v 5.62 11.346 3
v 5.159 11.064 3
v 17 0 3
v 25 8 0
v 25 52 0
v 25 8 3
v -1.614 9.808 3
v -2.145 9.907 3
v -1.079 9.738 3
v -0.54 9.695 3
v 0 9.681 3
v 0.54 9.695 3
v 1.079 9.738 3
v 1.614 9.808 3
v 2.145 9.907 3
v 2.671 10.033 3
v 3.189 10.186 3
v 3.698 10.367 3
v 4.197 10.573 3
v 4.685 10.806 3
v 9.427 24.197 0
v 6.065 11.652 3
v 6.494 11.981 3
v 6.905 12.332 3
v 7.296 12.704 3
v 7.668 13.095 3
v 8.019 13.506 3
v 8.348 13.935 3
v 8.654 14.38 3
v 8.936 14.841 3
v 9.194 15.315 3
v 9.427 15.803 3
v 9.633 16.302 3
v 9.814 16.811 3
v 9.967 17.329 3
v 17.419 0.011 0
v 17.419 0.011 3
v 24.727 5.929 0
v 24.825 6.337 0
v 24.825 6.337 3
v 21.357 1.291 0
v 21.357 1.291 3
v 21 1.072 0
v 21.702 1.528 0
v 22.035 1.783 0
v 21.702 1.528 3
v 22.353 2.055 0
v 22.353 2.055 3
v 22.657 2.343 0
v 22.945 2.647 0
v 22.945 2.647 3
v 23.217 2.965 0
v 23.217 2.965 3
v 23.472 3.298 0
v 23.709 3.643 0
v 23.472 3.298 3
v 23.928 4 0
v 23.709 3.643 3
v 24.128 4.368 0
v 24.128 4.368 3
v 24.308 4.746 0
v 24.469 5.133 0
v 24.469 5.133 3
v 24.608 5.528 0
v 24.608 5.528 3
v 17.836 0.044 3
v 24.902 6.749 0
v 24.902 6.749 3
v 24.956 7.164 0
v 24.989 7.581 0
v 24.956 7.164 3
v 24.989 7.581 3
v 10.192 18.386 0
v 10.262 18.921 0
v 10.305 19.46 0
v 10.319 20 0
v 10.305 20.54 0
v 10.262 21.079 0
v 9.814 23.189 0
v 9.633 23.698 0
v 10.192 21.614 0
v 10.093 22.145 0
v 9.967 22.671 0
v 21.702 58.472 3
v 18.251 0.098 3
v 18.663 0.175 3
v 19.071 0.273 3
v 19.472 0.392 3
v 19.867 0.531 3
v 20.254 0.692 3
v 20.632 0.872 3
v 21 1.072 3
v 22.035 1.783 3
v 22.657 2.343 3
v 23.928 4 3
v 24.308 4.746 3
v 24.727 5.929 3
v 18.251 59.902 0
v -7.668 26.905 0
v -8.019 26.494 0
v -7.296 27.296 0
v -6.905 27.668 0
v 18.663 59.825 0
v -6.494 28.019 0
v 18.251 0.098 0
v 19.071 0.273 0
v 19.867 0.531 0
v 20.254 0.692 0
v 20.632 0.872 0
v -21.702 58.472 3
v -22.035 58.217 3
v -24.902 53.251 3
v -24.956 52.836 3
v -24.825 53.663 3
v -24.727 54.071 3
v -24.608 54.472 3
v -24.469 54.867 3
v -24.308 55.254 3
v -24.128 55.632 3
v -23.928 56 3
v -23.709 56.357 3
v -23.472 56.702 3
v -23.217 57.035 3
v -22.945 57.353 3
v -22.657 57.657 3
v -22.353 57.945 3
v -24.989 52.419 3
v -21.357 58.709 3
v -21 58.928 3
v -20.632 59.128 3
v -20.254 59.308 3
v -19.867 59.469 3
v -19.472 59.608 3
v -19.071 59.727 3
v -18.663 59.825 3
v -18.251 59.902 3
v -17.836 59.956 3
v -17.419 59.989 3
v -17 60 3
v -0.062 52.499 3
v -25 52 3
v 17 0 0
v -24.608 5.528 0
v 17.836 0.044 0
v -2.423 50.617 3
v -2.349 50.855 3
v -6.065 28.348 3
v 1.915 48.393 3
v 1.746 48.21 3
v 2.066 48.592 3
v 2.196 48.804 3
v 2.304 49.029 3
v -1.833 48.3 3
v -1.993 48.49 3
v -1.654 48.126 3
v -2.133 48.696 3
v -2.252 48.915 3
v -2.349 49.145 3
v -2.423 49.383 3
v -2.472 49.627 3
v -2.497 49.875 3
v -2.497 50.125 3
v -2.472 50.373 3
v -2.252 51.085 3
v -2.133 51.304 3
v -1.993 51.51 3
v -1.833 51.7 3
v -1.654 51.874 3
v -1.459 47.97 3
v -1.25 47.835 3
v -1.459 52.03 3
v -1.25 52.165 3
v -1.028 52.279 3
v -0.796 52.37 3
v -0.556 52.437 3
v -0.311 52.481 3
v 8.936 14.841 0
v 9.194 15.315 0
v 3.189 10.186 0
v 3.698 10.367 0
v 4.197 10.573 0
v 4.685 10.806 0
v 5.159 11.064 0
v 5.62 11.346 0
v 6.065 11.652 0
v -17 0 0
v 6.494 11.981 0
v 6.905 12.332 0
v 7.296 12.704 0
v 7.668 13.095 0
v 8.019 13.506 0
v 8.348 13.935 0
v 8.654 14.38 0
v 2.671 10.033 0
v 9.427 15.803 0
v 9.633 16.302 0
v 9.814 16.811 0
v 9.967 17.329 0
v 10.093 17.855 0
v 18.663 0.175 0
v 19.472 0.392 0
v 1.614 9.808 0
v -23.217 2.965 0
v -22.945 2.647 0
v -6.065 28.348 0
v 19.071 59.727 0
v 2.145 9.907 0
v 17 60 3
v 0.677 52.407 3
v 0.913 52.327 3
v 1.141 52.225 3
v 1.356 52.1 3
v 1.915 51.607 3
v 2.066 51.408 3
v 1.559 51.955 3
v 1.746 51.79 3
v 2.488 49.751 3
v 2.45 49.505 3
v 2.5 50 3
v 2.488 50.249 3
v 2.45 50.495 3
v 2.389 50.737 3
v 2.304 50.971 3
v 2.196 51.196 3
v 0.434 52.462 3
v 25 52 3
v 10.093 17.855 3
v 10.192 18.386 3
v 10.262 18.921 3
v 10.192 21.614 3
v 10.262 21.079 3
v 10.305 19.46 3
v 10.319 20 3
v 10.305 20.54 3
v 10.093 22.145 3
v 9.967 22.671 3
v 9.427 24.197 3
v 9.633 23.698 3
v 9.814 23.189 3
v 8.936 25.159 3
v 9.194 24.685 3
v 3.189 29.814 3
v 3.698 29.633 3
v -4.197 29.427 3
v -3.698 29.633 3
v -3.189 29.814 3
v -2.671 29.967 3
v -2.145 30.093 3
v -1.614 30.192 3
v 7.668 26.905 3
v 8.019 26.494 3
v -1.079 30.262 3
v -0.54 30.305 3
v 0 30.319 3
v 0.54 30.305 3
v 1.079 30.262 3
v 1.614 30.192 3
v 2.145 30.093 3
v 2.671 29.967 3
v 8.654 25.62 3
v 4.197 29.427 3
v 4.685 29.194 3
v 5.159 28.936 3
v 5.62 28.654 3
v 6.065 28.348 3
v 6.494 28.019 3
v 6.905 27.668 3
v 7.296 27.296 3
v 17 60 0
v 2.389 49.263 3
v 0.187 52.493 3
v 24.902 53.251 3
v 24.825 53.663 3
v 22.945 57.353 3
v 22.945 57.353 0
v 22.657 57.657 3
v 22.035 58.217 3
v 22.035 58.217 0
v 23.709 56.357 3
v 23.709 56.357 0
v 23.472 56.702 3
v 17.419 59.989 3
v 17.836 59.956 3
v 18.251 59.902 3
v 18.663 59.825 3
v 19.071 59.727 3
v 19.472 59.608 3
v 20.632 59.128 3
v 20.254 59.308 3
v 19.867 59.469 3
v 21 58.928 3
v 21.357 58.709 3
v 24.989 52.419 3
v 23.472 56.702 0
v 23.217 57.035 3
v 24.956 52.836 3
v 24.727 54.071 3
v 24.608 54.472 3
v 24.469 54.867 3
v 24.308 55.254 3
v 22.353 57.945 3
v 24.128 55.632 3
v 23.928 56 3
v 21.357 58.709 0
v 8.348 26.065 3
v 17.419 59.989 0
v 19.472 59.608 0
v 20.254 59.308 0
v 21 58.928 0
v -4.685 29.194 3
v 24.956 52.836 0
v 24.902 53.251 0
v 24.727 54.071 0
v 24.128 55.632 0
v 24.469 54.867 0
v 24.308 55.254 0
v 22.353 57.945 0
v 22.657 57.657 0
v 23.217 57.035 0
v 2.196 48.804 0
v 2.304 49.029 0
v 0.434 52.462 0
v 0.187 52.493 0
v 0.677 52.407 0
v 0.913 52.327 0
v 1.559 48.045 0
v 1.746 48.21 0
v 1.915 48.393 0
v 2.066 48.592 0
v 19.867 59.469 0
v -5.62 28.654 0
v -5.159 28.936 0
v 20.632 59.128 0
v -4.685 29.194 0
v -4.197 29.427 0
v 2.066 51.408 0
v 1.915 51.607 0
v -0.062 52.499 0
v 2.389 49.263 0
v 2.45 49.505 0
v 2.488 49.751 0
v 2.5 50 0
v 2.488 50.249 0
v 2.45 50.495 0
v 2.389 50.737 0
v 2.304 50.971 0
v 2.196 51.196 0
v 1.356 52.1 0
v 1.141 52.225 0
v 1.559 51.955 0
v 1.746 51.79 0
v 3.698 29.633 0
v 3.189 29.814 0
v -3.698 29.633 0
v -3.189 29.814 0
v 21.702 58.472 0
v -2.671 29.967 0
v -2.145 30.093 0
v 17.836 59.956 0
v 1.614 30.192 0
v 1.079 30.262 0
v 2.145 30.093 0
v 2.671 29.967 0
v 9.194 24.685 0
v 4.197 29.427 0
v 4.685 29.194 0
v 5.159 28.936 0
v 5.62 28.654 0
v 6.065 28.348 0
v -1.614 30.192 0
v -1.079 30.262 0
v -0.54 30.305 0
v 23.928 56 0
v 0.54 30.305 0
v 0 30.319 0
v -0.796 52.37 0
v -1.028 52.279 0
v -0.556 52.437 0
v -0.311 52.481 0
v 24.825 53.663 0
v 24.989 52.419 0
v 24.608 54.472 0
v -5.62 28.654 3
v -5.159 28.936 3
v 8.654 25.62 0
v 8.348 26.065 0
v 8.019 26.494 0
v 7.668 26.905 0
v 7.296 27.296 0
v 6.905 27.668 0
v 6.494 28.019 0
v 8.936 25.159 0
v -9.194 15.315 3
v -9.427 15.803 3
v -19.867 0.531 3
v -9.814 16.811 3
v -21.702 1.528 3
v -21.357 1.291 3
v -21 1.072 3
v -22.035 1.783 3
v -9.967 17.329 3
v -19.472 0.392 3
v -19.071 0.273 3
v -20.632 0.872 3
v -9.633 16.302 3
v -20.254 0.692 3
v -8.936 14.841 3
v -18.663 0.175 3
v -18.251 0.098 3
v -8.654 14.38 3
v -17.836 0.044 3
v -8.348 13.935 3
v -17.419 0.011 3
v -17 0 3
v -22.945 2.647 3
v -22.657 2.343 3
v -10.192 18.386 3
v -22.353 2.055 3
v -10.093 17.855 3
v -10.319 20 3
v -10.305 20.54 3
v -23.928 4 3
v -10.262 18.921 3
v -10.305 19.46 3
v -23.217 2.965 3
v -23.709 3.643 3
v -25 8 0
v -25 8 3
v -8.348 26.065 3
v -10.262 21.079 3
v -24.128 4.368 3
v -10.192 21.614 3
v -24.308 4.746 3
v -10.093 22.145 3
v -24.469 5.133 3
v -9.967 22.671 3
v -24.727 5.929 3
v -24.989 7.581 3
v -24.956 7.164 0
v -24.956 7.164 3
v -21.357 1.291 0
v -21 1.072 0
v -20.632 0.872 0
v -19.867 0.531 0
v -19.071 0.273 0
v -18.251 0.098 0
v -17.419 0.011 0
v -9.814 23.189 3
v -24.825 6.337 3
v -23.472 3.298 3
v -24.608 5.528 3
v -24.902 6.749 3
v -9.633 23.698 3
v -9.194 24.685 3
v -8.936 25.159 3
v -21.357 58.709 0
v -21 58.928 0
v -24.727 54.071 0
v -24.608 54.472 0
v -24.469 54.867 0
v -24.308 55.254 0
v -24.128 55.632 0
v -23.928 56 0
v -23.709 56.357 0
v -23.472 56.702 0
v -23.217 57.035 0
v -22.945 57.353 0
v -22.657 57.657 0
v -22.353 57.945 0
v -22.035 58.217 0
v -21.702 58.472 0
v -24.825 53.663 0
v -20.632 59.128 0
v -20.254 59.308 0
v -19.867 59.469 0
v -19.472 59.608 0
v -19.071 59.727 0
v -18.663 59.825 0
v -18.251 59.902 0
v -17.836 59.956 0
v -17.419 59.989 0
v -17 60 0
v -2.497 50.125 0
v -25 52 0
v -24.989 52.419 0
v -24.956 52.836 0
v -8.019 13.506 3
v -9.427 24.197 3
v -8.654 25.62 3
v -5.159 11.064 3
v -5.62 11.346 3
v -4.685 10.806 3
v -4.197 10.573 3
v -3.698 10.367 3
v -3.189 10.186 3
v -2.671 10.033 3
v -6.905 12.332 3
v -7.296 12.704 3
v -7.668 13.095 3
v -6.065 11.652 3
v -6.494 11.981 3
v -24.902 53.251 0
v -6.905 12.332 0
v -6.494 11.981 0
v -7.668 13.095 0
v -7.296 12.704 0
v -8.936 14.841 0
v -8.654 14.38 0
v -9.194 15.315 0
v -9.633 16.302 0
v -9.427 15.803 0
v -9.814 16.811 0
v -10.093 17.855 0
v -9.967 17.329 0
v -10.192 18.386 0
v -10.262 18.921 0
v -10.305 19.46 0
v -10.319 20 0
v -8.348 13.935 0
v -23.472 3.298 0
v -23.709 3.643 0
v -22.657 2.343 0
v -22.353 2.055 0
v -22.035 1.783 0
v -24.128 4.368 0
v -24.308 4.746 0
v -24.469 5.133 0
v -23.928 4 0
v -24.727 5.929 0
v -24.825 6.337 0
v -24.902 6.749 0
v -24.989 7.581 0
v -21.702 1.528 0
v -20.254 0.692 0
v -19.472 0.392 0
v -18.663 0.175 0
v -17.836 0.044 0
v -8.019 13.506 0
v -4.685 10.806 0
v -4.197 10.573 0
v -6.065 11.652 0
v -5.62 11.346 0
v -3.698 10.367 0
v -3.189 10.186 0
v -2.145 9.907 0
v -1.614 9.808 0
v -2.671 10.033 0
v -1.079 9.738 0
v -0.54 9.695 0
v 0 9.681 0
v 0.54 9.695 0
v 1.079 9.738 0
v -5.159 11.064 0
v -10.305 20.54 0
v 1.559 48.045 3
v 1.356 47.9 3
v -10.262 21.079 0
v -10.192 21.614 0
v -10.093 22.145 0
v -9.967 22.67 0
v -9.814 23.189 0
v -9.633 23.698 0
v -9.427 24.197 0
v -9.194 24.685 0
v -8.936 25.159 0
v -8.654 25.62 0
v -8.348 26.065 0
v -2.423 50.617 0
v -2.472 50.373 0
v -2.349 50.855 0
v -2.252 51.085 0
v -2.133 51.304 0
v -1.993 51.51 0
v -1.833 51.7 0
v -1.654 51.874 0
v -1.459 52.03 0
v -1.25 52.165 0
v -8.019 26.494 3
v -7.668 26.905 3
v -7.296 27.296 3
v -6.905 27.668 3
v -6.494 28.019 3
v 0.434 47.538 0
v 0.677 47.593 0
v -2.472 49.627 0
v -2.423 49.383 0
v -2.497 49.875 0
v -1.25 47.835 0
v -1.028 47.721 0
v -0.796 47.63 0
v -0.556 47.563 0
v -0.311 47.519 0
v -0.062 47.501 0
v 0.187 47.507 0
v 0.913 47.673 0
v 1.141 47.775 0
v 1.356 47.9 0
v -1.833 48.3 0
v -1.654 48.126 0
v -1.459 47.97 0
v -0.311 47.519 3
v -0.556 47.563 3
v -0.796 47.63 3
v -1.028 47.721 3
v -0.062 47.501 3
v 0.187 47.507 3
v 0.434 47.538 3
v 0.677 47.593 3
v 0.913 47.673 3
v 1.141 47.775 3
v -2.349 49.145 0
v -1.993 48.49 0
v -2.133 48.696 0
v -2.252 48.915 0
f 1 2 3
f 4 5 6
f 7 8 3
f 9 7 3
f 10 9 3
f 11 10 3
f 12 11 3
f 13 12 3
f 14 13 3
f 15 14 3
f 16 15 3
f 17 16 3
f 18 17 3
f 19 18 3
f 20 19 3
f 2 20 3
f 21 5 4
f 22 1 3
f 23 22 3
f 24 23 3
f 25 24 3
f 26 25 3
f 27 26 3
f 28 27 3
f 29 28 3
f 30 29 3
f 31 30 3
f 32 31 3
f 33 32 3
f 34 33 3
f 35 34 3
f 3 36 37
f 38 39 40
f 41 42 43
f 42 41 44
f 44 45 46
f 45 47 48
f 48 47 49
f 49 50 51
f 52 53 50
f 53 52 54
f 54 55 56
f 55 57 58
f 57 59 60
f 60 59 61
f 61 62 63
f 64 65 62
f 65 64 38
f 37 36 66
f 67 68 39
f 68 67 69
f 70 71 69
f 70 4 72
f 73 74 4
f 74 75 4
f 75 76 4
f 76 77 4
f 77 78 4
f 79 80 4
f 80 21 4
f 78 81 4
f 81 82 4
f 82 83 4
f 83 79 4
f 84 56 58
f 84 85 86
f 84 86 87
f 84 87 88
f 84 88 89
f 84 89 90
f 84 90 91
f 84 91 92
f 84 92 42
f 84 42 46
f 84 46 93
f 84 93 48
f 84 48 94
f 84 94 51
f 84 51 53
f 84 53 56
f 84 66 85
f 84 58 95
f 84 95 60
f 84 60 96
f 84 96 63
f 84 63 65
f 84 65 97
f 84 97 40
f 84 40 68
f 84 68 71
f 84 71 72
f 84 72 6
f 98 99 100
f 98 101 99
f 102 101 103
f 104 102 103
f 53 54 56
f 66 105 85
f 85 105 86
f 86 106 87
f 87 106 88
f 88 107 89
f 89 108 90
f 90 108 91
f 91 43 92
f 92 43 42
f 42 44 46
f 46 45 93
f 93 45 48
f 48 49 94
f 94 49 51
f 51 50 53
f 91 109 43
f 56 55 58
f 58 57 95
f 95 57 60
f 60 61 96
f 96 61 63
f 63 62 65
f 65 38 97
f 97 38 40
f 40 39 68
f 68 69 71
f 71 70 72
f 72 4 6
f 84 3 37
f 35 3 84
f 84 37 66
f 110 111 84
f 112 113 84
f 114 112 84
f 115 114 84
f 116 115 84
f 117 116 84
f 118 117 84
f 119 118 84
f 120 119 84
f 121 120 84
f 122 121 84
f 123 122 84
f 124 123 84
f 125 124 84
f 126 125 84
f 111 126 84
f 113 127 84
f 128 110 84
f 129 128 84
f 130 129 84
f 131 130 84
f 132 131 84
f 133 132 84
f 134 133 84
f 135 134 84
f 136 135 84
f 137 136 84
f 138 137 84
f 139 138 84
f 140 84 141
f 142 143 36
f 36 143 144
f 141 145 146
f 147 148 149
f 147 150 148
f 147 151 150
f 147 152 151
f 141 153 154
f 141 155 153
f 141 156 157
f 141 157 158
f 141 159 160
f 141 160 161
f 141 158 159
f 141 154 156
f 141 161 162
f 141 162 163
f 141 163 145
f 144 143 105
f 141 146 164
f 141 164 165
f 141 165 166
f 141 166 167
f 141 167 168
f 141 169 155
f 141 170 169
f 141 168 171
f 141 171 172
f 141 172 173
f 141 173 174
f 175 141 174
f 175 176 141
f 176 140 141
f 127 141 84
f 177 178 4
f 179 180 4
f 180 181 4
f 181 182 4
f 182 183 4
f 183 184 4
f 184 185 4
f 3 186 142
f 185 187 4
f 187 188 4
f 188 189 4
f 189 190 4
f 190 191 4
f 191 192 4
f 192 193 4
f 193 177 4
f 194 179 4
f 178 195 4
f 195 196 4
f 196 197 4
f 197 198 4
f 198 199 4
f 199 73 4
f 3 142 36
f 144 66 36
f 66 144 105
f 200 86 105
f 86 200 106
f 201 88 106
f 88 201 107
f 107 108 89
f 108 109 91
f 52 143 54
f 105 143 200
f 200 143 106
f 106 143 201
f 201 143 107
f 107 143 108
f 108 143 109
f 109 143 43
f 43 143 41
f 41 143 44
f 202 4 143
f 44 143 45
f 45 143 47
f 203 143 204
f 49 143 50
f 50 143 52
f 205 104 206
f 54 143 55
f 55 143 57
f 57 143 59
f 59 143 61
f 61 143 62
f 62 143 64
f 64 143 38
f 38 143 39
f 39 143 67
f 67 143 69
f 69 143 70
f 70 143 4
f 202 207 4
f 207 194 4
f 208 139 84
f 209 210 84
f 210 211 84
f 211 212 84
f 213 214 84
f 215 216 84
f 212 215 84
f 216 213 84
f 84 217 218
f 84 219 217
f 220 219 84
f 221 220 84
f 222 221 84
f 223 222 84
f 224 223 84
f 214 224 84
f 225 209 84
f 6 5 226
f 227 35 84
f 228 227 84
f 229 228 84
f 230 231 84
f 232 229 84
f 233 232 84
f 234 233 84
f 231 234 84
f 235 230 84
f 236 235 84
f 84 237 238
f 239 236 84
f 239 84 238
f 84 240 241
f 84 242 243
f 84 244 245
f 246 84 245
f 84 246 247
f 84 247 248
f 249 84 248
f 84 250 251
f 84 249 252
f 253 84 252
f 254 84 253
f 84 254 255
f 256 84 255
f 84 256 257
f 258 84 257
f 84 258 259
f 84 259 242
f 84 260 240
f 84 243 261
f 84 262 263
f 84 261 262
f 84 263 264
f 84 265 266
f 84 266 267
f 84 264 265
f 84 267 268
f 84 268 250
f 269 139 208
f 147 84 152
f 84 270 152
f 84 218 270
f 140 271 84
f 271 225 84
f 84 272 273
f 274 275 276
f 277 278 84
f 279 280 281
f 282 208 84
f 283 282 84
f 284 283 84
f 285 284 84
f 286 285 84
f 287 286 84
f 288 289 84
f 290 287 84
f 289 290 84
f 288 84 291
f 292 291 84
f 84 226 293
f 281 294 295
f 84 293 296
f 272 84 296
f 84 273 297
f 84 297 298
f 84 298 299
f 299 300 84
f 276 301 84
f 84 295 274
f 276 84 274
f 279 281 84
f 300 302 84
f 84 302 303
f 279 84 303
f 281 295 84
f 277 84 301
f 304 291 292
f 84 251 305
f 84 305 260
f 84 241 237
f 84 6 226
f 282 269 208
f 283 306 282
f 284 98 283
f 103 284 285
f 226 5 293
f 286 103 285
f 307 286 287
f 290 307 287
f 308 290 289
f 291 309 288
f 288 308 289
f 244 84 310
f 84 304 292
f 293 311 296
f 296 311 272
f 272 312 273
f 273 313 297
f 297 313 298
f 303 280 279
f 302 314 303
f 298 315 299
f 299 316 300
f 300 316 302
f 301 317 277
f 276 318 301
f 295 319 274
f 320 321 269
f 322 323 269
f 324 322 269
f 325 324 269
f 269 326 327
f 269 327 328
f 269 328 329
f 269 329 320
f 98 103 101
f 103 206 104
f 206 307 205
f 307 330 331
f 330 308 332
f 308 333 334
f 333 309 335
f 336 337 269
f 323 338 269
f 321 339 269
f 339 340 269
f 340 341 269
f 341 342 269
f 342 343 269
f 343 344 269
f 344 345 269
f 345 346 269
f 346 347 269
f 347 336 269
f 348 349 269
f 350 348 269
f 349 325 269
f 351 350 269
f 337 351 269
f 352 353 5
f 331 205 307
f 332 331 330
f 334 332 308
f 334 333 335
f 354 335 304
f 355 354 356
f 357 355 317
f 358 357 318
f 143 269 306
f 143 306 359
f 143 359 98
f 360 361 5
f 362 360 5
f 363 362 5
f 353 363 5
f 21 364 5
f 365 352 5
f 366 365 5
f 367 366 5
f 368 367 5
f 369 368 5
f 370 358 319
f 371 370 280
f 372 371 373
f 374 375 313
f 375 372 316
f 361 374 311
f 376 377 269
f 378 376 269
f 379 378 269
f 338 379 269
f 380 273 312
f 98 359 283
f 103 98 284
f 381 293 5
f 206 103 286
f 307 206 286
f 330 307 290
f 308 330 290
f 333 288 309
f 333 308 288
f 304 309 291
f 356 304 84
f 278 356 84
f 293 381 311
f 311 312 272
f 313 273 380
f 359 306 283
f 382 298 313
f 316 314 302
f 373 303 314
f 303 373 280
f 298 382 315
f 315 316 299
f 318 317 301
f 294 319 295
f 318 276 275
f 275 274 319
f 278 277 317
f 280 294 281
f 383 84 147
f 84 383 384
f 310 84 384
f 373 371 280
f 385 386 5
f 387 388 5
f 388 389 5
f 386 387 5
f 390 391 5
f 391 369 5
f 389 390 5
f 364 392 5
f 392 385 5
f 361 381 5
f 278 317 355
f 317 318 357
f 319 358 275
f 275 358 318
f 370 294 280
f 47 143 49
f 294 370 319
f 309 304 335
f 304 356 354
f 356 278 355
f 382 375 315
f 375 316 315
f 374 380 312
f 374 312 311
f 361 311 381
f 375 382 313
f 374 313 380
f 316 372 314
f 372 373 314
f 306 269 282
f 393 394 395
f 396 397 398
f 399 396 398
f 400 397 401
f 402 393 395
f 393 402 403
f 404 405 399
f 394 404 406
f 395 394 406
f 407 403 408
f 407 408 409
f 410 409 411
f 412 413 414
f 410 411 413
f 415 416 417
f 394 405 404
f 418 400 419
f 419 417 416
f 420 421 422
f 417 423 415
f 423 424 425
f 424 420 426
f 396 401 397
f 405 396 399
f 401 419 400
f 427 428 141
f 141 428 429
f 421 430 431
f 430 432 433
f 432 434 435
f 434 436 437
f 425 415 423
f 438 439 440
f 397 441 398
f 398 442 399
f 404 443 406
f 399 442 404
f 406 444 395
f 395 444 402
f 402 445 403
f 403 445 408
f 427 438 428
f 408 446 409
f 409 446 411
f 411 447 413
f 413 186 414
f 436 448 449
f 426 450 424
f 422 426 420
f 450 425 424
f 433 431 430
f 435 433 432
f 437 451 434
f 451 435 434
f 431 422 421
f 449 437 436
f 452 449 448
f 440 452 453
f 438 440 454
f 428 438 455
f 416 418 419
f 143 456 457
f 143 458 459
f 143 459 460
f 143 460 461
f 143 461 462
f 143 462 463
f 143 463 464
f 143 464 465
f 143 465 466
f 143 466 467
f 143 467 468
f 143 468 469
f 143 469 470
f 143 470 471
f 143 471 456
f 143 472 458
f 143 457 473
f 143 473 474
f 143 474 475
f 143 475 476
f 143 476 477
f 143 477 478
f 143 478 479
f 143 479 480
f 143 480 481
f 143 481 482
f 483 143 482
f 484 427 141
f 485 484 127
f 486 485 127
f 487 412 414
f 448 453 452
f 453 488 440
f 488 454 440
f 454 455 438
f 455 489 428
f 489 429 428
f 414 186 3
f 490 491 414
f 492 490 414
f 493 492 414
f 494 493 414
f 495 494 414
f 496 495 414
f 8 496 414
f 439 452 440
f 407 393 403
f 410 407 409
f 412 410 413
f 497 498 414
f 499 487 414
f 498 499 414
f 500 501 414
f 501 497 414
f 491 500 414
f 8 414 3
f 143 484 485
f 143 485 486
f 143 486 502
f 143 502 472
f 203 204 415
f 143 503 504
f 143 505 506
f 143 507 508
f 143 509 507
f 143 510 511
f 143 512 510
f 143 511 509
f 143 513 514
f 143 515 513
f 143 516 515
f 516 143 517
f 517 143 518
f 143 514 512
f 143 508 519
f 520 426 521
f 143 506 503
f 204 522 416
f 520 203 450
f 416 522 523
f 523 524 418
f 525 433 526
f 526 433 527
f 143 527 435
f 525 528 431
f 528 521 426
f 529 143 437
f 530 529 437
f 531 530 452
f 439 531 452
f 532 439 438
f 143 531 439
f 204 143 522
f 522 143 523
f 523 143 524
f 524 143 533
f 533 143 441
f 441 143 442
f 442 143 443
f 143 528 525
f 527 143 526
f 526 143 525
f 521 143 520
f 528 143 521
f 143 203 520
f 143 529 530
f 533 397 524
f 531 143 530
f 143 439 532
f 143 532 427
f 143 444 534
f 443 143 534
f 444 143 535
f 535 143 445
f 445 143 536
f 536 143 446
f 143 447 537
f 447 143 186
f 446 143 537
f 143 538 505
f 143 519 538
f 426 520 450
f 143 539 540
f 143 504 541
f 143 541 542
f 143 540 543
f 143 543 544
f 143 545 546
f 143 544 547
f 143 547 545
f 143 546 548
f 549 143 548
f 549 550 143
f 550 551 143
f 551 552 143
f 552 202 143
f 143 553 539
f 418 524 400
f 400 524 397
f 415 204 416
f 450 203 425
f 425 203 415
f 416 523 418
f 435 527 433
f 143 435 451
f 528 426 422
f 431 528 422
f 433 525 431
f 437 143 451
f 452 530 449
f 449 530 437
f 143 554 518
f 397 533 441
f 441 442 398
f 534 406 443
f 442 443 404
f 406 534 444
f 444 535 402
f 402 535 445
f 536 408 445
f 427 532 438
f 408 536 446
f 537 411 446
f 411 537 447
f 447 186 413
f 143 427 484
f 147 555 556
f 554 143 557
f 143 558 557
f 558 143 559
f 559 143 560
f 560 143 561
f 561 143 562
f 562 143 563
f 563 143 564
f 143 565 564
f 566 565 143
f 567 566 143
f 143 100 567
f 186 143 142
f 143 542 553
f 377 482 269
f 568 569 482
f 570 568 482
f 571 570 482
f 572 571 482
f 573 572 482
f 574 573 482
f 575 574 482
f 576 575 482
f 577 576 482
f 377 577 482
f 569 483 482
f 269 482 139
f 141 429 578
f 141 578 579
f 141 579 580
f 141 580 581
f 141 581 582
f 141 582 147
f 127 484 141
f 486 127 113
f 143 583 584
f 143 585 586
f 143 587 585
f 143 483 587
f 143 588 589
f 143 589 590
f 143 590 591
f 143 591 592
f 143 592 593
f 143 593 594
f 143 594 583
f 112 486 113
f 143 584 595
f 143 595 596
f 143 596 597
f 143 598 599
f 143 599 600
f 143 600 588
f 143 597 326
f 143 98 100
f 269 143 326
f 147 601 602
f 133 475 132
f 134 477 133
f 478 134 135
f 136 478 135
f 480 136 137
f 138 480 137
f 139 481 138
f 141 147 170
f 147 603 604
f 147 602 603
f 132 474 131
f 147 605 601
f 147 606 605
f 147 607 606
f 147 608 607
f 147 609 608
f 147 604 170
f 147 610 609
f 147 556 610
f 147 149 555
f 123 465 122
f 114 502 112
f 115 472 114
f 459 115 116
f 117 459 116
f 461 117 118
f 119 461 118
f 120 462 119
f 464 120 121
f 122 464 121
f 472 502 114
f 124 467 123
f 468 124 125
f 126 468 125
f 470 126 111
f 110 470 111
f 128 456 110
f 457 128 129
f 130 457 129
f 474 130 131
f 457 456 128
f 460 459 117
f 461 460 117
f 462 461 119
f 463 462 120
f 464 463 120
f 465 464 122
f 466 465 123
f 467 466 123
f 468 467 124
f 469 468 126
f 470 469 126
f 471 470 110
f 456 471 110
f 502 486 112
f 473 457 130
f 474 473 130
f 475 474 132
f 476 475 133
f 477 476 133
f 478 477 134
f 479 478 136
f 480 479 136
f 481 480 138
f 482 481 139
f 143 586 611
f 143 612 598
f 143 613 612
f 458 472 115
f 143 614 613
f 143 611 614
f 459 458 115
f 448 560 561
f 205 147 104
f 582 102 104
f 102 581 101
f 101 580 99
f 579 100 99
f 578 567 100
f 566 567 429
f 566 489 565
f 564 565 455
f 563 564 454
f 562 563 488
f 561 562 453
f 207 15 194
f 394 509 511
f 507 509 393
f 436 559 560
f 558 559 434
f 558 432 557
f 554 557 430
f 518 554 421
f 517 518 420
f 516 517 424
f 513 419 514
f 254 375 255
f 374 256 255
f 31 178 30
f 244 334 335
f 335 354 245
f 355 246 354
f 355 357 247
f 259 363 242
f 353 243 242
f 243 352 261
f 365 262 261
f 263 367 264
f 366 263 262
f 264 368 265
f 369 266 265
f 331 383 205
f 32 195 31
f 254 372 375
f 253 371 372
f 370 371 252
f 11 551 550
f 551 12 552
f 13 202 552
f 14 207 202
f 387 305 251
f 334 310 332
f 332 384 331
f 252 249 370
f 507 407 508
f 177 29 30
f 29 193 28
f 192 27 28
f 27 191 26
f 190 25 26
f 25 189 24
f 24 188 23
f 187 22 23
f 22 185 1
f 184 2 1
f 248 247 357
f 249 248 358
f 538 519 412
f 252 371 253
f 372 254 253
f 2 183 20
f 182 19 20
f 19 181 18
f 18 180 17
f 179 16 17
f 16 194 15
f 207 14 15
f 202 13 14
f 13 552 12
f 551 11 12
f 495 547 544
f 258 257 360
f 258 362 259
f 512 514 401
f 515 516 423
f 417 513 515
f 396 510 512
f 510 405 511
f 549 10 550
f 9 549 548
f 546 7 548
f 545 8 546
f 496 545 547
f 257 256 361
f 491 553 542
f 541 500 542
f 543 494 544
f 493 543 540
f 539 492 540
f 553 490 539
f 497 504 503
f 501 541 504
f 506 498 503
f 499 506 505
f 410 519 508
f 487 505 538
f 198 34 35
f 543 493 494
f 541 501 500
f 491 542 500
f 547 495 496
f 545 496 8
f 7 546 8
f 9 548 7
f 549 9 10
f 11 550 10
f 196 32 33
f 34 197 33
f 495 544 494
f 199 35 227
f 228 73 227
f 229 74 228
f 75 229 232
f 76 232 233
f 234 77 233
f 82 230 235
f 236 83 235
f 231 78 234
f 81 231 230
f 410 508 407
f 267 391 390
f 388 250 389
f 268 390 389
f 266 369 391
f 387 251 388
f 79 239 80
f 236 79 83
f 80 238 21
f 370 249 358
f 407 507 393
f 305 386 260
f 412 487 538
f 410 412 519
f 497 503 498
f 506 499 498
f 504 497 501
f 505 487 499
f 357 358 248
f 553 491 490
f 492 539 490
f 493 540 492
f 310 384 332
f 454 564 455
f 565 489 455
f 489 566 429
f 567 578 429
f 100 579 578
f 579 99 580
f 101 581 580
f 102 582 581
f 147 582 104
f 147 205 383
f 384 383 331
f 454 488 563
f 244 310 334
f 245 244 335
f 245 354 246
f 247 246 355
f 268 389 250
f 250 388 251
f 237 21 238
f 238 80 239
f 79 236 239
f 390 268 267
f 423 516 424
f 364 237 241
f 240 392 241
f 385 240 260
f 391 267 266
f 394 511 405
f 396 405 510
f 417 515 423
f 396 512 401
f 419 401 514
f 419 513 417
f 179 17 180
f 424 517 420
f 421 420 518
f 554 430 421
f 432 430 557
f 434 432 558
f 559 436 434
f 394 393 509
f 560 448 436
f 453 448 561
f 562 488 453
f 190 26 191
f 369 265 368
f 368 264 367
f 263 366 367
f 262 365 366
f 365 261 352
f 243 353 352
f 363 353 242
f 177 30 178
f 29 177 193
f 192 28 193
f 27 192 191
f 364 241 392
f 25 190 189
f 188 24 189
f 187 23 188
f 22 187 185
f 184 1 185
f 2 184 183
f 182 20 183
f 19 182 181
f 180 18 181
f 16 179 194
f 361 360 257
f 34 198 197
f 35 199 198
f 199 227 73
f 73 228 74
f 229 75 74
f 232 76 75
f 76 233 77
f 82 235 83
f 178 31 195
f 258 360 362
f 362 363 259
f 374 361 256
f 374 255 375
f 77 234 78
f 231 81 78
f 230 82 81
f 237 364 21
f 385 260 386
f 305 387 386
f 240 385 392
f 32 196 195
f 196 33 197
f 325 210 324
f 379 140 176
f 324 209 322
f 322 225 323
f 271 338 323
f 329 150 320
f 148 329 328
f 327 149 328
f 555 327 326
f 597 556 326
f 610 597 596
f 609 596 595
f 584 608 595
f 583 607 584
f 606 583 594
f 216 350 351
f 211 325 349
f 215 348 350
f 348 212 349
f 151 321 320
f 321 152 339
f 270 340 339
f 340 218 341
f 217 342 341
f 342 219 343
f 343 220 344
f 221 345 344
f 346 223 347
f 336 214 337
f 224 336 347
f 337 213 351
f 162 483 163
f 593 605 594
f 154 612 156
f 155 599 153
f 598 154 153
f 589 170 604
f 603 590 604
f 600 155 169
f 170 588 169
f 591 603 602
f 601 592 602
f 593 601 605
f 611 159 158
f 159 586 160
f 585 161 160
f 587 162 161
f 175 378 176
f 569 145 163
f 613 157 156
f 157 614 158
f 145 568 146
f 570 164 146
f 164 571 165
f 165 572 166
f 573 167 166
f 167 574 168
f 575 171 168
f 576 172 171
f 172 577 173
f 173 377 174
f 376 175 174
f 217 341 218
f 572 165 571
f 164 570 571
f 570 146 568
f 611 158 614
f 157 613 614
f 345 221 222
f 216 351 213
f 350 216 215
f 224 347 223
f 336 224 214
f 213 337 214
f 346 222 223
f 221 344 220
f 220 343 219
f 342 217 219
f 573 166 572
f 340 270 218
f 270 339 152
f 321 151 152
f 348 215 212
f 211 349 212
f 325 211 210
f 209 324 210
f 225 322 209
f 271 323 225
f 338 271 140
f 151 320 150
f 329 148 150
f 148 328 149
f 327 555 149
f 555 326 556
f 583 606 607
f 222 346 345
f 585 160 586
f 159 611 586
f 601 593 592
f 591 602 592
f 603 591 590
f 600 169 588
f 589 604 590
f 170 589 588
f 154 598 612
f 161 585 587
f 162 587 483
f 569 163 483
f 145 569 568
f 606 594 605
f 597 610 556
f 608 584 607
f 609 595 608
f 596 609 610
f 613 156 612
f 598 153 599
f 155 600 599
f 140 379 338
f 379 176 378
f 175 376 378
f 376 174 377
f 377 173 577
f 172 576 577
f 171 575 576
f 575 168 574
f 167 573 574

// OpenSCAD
// print with 20% rectilinear infill

$fa=3;
$fs=0.25;

thick=3;   // limited by valve body threads
width=50;
length=60; // limited by size of reservoir
corner_radius=8;
hole_dia=20.6375;
hole_inset=20;
thumb_dia=5;
thumb_inset=10;

dw=width/2-corner_radius;
dl=length/2-corner_radius;

difference() {
  // body
  hull() {
    translate([-dw, corner_radius, 0])
      cylinder(h=thick, r=corner_radius);
    translate([dw, corner_radius, 0])
      cylinder(h=thick, r=corner_radius);
    translate([-dw, length-corner_radius, 0])
      cylinder(h=thick, r=corner_radius);
    translate([dw, length-corner_radius, 0])
      cylinder(h=thick, r=corner_radius);
  }

  // large hole
  translate([0, hole_inset, -1]) {
    cylinder(h=thick+2, d=hole_dia);
  }

  // thumbscrew hole
  translate([0, length-thumb_inset, -1]) {
    cylinder(h=thick+2, d=thumb_dia);
  }
}
